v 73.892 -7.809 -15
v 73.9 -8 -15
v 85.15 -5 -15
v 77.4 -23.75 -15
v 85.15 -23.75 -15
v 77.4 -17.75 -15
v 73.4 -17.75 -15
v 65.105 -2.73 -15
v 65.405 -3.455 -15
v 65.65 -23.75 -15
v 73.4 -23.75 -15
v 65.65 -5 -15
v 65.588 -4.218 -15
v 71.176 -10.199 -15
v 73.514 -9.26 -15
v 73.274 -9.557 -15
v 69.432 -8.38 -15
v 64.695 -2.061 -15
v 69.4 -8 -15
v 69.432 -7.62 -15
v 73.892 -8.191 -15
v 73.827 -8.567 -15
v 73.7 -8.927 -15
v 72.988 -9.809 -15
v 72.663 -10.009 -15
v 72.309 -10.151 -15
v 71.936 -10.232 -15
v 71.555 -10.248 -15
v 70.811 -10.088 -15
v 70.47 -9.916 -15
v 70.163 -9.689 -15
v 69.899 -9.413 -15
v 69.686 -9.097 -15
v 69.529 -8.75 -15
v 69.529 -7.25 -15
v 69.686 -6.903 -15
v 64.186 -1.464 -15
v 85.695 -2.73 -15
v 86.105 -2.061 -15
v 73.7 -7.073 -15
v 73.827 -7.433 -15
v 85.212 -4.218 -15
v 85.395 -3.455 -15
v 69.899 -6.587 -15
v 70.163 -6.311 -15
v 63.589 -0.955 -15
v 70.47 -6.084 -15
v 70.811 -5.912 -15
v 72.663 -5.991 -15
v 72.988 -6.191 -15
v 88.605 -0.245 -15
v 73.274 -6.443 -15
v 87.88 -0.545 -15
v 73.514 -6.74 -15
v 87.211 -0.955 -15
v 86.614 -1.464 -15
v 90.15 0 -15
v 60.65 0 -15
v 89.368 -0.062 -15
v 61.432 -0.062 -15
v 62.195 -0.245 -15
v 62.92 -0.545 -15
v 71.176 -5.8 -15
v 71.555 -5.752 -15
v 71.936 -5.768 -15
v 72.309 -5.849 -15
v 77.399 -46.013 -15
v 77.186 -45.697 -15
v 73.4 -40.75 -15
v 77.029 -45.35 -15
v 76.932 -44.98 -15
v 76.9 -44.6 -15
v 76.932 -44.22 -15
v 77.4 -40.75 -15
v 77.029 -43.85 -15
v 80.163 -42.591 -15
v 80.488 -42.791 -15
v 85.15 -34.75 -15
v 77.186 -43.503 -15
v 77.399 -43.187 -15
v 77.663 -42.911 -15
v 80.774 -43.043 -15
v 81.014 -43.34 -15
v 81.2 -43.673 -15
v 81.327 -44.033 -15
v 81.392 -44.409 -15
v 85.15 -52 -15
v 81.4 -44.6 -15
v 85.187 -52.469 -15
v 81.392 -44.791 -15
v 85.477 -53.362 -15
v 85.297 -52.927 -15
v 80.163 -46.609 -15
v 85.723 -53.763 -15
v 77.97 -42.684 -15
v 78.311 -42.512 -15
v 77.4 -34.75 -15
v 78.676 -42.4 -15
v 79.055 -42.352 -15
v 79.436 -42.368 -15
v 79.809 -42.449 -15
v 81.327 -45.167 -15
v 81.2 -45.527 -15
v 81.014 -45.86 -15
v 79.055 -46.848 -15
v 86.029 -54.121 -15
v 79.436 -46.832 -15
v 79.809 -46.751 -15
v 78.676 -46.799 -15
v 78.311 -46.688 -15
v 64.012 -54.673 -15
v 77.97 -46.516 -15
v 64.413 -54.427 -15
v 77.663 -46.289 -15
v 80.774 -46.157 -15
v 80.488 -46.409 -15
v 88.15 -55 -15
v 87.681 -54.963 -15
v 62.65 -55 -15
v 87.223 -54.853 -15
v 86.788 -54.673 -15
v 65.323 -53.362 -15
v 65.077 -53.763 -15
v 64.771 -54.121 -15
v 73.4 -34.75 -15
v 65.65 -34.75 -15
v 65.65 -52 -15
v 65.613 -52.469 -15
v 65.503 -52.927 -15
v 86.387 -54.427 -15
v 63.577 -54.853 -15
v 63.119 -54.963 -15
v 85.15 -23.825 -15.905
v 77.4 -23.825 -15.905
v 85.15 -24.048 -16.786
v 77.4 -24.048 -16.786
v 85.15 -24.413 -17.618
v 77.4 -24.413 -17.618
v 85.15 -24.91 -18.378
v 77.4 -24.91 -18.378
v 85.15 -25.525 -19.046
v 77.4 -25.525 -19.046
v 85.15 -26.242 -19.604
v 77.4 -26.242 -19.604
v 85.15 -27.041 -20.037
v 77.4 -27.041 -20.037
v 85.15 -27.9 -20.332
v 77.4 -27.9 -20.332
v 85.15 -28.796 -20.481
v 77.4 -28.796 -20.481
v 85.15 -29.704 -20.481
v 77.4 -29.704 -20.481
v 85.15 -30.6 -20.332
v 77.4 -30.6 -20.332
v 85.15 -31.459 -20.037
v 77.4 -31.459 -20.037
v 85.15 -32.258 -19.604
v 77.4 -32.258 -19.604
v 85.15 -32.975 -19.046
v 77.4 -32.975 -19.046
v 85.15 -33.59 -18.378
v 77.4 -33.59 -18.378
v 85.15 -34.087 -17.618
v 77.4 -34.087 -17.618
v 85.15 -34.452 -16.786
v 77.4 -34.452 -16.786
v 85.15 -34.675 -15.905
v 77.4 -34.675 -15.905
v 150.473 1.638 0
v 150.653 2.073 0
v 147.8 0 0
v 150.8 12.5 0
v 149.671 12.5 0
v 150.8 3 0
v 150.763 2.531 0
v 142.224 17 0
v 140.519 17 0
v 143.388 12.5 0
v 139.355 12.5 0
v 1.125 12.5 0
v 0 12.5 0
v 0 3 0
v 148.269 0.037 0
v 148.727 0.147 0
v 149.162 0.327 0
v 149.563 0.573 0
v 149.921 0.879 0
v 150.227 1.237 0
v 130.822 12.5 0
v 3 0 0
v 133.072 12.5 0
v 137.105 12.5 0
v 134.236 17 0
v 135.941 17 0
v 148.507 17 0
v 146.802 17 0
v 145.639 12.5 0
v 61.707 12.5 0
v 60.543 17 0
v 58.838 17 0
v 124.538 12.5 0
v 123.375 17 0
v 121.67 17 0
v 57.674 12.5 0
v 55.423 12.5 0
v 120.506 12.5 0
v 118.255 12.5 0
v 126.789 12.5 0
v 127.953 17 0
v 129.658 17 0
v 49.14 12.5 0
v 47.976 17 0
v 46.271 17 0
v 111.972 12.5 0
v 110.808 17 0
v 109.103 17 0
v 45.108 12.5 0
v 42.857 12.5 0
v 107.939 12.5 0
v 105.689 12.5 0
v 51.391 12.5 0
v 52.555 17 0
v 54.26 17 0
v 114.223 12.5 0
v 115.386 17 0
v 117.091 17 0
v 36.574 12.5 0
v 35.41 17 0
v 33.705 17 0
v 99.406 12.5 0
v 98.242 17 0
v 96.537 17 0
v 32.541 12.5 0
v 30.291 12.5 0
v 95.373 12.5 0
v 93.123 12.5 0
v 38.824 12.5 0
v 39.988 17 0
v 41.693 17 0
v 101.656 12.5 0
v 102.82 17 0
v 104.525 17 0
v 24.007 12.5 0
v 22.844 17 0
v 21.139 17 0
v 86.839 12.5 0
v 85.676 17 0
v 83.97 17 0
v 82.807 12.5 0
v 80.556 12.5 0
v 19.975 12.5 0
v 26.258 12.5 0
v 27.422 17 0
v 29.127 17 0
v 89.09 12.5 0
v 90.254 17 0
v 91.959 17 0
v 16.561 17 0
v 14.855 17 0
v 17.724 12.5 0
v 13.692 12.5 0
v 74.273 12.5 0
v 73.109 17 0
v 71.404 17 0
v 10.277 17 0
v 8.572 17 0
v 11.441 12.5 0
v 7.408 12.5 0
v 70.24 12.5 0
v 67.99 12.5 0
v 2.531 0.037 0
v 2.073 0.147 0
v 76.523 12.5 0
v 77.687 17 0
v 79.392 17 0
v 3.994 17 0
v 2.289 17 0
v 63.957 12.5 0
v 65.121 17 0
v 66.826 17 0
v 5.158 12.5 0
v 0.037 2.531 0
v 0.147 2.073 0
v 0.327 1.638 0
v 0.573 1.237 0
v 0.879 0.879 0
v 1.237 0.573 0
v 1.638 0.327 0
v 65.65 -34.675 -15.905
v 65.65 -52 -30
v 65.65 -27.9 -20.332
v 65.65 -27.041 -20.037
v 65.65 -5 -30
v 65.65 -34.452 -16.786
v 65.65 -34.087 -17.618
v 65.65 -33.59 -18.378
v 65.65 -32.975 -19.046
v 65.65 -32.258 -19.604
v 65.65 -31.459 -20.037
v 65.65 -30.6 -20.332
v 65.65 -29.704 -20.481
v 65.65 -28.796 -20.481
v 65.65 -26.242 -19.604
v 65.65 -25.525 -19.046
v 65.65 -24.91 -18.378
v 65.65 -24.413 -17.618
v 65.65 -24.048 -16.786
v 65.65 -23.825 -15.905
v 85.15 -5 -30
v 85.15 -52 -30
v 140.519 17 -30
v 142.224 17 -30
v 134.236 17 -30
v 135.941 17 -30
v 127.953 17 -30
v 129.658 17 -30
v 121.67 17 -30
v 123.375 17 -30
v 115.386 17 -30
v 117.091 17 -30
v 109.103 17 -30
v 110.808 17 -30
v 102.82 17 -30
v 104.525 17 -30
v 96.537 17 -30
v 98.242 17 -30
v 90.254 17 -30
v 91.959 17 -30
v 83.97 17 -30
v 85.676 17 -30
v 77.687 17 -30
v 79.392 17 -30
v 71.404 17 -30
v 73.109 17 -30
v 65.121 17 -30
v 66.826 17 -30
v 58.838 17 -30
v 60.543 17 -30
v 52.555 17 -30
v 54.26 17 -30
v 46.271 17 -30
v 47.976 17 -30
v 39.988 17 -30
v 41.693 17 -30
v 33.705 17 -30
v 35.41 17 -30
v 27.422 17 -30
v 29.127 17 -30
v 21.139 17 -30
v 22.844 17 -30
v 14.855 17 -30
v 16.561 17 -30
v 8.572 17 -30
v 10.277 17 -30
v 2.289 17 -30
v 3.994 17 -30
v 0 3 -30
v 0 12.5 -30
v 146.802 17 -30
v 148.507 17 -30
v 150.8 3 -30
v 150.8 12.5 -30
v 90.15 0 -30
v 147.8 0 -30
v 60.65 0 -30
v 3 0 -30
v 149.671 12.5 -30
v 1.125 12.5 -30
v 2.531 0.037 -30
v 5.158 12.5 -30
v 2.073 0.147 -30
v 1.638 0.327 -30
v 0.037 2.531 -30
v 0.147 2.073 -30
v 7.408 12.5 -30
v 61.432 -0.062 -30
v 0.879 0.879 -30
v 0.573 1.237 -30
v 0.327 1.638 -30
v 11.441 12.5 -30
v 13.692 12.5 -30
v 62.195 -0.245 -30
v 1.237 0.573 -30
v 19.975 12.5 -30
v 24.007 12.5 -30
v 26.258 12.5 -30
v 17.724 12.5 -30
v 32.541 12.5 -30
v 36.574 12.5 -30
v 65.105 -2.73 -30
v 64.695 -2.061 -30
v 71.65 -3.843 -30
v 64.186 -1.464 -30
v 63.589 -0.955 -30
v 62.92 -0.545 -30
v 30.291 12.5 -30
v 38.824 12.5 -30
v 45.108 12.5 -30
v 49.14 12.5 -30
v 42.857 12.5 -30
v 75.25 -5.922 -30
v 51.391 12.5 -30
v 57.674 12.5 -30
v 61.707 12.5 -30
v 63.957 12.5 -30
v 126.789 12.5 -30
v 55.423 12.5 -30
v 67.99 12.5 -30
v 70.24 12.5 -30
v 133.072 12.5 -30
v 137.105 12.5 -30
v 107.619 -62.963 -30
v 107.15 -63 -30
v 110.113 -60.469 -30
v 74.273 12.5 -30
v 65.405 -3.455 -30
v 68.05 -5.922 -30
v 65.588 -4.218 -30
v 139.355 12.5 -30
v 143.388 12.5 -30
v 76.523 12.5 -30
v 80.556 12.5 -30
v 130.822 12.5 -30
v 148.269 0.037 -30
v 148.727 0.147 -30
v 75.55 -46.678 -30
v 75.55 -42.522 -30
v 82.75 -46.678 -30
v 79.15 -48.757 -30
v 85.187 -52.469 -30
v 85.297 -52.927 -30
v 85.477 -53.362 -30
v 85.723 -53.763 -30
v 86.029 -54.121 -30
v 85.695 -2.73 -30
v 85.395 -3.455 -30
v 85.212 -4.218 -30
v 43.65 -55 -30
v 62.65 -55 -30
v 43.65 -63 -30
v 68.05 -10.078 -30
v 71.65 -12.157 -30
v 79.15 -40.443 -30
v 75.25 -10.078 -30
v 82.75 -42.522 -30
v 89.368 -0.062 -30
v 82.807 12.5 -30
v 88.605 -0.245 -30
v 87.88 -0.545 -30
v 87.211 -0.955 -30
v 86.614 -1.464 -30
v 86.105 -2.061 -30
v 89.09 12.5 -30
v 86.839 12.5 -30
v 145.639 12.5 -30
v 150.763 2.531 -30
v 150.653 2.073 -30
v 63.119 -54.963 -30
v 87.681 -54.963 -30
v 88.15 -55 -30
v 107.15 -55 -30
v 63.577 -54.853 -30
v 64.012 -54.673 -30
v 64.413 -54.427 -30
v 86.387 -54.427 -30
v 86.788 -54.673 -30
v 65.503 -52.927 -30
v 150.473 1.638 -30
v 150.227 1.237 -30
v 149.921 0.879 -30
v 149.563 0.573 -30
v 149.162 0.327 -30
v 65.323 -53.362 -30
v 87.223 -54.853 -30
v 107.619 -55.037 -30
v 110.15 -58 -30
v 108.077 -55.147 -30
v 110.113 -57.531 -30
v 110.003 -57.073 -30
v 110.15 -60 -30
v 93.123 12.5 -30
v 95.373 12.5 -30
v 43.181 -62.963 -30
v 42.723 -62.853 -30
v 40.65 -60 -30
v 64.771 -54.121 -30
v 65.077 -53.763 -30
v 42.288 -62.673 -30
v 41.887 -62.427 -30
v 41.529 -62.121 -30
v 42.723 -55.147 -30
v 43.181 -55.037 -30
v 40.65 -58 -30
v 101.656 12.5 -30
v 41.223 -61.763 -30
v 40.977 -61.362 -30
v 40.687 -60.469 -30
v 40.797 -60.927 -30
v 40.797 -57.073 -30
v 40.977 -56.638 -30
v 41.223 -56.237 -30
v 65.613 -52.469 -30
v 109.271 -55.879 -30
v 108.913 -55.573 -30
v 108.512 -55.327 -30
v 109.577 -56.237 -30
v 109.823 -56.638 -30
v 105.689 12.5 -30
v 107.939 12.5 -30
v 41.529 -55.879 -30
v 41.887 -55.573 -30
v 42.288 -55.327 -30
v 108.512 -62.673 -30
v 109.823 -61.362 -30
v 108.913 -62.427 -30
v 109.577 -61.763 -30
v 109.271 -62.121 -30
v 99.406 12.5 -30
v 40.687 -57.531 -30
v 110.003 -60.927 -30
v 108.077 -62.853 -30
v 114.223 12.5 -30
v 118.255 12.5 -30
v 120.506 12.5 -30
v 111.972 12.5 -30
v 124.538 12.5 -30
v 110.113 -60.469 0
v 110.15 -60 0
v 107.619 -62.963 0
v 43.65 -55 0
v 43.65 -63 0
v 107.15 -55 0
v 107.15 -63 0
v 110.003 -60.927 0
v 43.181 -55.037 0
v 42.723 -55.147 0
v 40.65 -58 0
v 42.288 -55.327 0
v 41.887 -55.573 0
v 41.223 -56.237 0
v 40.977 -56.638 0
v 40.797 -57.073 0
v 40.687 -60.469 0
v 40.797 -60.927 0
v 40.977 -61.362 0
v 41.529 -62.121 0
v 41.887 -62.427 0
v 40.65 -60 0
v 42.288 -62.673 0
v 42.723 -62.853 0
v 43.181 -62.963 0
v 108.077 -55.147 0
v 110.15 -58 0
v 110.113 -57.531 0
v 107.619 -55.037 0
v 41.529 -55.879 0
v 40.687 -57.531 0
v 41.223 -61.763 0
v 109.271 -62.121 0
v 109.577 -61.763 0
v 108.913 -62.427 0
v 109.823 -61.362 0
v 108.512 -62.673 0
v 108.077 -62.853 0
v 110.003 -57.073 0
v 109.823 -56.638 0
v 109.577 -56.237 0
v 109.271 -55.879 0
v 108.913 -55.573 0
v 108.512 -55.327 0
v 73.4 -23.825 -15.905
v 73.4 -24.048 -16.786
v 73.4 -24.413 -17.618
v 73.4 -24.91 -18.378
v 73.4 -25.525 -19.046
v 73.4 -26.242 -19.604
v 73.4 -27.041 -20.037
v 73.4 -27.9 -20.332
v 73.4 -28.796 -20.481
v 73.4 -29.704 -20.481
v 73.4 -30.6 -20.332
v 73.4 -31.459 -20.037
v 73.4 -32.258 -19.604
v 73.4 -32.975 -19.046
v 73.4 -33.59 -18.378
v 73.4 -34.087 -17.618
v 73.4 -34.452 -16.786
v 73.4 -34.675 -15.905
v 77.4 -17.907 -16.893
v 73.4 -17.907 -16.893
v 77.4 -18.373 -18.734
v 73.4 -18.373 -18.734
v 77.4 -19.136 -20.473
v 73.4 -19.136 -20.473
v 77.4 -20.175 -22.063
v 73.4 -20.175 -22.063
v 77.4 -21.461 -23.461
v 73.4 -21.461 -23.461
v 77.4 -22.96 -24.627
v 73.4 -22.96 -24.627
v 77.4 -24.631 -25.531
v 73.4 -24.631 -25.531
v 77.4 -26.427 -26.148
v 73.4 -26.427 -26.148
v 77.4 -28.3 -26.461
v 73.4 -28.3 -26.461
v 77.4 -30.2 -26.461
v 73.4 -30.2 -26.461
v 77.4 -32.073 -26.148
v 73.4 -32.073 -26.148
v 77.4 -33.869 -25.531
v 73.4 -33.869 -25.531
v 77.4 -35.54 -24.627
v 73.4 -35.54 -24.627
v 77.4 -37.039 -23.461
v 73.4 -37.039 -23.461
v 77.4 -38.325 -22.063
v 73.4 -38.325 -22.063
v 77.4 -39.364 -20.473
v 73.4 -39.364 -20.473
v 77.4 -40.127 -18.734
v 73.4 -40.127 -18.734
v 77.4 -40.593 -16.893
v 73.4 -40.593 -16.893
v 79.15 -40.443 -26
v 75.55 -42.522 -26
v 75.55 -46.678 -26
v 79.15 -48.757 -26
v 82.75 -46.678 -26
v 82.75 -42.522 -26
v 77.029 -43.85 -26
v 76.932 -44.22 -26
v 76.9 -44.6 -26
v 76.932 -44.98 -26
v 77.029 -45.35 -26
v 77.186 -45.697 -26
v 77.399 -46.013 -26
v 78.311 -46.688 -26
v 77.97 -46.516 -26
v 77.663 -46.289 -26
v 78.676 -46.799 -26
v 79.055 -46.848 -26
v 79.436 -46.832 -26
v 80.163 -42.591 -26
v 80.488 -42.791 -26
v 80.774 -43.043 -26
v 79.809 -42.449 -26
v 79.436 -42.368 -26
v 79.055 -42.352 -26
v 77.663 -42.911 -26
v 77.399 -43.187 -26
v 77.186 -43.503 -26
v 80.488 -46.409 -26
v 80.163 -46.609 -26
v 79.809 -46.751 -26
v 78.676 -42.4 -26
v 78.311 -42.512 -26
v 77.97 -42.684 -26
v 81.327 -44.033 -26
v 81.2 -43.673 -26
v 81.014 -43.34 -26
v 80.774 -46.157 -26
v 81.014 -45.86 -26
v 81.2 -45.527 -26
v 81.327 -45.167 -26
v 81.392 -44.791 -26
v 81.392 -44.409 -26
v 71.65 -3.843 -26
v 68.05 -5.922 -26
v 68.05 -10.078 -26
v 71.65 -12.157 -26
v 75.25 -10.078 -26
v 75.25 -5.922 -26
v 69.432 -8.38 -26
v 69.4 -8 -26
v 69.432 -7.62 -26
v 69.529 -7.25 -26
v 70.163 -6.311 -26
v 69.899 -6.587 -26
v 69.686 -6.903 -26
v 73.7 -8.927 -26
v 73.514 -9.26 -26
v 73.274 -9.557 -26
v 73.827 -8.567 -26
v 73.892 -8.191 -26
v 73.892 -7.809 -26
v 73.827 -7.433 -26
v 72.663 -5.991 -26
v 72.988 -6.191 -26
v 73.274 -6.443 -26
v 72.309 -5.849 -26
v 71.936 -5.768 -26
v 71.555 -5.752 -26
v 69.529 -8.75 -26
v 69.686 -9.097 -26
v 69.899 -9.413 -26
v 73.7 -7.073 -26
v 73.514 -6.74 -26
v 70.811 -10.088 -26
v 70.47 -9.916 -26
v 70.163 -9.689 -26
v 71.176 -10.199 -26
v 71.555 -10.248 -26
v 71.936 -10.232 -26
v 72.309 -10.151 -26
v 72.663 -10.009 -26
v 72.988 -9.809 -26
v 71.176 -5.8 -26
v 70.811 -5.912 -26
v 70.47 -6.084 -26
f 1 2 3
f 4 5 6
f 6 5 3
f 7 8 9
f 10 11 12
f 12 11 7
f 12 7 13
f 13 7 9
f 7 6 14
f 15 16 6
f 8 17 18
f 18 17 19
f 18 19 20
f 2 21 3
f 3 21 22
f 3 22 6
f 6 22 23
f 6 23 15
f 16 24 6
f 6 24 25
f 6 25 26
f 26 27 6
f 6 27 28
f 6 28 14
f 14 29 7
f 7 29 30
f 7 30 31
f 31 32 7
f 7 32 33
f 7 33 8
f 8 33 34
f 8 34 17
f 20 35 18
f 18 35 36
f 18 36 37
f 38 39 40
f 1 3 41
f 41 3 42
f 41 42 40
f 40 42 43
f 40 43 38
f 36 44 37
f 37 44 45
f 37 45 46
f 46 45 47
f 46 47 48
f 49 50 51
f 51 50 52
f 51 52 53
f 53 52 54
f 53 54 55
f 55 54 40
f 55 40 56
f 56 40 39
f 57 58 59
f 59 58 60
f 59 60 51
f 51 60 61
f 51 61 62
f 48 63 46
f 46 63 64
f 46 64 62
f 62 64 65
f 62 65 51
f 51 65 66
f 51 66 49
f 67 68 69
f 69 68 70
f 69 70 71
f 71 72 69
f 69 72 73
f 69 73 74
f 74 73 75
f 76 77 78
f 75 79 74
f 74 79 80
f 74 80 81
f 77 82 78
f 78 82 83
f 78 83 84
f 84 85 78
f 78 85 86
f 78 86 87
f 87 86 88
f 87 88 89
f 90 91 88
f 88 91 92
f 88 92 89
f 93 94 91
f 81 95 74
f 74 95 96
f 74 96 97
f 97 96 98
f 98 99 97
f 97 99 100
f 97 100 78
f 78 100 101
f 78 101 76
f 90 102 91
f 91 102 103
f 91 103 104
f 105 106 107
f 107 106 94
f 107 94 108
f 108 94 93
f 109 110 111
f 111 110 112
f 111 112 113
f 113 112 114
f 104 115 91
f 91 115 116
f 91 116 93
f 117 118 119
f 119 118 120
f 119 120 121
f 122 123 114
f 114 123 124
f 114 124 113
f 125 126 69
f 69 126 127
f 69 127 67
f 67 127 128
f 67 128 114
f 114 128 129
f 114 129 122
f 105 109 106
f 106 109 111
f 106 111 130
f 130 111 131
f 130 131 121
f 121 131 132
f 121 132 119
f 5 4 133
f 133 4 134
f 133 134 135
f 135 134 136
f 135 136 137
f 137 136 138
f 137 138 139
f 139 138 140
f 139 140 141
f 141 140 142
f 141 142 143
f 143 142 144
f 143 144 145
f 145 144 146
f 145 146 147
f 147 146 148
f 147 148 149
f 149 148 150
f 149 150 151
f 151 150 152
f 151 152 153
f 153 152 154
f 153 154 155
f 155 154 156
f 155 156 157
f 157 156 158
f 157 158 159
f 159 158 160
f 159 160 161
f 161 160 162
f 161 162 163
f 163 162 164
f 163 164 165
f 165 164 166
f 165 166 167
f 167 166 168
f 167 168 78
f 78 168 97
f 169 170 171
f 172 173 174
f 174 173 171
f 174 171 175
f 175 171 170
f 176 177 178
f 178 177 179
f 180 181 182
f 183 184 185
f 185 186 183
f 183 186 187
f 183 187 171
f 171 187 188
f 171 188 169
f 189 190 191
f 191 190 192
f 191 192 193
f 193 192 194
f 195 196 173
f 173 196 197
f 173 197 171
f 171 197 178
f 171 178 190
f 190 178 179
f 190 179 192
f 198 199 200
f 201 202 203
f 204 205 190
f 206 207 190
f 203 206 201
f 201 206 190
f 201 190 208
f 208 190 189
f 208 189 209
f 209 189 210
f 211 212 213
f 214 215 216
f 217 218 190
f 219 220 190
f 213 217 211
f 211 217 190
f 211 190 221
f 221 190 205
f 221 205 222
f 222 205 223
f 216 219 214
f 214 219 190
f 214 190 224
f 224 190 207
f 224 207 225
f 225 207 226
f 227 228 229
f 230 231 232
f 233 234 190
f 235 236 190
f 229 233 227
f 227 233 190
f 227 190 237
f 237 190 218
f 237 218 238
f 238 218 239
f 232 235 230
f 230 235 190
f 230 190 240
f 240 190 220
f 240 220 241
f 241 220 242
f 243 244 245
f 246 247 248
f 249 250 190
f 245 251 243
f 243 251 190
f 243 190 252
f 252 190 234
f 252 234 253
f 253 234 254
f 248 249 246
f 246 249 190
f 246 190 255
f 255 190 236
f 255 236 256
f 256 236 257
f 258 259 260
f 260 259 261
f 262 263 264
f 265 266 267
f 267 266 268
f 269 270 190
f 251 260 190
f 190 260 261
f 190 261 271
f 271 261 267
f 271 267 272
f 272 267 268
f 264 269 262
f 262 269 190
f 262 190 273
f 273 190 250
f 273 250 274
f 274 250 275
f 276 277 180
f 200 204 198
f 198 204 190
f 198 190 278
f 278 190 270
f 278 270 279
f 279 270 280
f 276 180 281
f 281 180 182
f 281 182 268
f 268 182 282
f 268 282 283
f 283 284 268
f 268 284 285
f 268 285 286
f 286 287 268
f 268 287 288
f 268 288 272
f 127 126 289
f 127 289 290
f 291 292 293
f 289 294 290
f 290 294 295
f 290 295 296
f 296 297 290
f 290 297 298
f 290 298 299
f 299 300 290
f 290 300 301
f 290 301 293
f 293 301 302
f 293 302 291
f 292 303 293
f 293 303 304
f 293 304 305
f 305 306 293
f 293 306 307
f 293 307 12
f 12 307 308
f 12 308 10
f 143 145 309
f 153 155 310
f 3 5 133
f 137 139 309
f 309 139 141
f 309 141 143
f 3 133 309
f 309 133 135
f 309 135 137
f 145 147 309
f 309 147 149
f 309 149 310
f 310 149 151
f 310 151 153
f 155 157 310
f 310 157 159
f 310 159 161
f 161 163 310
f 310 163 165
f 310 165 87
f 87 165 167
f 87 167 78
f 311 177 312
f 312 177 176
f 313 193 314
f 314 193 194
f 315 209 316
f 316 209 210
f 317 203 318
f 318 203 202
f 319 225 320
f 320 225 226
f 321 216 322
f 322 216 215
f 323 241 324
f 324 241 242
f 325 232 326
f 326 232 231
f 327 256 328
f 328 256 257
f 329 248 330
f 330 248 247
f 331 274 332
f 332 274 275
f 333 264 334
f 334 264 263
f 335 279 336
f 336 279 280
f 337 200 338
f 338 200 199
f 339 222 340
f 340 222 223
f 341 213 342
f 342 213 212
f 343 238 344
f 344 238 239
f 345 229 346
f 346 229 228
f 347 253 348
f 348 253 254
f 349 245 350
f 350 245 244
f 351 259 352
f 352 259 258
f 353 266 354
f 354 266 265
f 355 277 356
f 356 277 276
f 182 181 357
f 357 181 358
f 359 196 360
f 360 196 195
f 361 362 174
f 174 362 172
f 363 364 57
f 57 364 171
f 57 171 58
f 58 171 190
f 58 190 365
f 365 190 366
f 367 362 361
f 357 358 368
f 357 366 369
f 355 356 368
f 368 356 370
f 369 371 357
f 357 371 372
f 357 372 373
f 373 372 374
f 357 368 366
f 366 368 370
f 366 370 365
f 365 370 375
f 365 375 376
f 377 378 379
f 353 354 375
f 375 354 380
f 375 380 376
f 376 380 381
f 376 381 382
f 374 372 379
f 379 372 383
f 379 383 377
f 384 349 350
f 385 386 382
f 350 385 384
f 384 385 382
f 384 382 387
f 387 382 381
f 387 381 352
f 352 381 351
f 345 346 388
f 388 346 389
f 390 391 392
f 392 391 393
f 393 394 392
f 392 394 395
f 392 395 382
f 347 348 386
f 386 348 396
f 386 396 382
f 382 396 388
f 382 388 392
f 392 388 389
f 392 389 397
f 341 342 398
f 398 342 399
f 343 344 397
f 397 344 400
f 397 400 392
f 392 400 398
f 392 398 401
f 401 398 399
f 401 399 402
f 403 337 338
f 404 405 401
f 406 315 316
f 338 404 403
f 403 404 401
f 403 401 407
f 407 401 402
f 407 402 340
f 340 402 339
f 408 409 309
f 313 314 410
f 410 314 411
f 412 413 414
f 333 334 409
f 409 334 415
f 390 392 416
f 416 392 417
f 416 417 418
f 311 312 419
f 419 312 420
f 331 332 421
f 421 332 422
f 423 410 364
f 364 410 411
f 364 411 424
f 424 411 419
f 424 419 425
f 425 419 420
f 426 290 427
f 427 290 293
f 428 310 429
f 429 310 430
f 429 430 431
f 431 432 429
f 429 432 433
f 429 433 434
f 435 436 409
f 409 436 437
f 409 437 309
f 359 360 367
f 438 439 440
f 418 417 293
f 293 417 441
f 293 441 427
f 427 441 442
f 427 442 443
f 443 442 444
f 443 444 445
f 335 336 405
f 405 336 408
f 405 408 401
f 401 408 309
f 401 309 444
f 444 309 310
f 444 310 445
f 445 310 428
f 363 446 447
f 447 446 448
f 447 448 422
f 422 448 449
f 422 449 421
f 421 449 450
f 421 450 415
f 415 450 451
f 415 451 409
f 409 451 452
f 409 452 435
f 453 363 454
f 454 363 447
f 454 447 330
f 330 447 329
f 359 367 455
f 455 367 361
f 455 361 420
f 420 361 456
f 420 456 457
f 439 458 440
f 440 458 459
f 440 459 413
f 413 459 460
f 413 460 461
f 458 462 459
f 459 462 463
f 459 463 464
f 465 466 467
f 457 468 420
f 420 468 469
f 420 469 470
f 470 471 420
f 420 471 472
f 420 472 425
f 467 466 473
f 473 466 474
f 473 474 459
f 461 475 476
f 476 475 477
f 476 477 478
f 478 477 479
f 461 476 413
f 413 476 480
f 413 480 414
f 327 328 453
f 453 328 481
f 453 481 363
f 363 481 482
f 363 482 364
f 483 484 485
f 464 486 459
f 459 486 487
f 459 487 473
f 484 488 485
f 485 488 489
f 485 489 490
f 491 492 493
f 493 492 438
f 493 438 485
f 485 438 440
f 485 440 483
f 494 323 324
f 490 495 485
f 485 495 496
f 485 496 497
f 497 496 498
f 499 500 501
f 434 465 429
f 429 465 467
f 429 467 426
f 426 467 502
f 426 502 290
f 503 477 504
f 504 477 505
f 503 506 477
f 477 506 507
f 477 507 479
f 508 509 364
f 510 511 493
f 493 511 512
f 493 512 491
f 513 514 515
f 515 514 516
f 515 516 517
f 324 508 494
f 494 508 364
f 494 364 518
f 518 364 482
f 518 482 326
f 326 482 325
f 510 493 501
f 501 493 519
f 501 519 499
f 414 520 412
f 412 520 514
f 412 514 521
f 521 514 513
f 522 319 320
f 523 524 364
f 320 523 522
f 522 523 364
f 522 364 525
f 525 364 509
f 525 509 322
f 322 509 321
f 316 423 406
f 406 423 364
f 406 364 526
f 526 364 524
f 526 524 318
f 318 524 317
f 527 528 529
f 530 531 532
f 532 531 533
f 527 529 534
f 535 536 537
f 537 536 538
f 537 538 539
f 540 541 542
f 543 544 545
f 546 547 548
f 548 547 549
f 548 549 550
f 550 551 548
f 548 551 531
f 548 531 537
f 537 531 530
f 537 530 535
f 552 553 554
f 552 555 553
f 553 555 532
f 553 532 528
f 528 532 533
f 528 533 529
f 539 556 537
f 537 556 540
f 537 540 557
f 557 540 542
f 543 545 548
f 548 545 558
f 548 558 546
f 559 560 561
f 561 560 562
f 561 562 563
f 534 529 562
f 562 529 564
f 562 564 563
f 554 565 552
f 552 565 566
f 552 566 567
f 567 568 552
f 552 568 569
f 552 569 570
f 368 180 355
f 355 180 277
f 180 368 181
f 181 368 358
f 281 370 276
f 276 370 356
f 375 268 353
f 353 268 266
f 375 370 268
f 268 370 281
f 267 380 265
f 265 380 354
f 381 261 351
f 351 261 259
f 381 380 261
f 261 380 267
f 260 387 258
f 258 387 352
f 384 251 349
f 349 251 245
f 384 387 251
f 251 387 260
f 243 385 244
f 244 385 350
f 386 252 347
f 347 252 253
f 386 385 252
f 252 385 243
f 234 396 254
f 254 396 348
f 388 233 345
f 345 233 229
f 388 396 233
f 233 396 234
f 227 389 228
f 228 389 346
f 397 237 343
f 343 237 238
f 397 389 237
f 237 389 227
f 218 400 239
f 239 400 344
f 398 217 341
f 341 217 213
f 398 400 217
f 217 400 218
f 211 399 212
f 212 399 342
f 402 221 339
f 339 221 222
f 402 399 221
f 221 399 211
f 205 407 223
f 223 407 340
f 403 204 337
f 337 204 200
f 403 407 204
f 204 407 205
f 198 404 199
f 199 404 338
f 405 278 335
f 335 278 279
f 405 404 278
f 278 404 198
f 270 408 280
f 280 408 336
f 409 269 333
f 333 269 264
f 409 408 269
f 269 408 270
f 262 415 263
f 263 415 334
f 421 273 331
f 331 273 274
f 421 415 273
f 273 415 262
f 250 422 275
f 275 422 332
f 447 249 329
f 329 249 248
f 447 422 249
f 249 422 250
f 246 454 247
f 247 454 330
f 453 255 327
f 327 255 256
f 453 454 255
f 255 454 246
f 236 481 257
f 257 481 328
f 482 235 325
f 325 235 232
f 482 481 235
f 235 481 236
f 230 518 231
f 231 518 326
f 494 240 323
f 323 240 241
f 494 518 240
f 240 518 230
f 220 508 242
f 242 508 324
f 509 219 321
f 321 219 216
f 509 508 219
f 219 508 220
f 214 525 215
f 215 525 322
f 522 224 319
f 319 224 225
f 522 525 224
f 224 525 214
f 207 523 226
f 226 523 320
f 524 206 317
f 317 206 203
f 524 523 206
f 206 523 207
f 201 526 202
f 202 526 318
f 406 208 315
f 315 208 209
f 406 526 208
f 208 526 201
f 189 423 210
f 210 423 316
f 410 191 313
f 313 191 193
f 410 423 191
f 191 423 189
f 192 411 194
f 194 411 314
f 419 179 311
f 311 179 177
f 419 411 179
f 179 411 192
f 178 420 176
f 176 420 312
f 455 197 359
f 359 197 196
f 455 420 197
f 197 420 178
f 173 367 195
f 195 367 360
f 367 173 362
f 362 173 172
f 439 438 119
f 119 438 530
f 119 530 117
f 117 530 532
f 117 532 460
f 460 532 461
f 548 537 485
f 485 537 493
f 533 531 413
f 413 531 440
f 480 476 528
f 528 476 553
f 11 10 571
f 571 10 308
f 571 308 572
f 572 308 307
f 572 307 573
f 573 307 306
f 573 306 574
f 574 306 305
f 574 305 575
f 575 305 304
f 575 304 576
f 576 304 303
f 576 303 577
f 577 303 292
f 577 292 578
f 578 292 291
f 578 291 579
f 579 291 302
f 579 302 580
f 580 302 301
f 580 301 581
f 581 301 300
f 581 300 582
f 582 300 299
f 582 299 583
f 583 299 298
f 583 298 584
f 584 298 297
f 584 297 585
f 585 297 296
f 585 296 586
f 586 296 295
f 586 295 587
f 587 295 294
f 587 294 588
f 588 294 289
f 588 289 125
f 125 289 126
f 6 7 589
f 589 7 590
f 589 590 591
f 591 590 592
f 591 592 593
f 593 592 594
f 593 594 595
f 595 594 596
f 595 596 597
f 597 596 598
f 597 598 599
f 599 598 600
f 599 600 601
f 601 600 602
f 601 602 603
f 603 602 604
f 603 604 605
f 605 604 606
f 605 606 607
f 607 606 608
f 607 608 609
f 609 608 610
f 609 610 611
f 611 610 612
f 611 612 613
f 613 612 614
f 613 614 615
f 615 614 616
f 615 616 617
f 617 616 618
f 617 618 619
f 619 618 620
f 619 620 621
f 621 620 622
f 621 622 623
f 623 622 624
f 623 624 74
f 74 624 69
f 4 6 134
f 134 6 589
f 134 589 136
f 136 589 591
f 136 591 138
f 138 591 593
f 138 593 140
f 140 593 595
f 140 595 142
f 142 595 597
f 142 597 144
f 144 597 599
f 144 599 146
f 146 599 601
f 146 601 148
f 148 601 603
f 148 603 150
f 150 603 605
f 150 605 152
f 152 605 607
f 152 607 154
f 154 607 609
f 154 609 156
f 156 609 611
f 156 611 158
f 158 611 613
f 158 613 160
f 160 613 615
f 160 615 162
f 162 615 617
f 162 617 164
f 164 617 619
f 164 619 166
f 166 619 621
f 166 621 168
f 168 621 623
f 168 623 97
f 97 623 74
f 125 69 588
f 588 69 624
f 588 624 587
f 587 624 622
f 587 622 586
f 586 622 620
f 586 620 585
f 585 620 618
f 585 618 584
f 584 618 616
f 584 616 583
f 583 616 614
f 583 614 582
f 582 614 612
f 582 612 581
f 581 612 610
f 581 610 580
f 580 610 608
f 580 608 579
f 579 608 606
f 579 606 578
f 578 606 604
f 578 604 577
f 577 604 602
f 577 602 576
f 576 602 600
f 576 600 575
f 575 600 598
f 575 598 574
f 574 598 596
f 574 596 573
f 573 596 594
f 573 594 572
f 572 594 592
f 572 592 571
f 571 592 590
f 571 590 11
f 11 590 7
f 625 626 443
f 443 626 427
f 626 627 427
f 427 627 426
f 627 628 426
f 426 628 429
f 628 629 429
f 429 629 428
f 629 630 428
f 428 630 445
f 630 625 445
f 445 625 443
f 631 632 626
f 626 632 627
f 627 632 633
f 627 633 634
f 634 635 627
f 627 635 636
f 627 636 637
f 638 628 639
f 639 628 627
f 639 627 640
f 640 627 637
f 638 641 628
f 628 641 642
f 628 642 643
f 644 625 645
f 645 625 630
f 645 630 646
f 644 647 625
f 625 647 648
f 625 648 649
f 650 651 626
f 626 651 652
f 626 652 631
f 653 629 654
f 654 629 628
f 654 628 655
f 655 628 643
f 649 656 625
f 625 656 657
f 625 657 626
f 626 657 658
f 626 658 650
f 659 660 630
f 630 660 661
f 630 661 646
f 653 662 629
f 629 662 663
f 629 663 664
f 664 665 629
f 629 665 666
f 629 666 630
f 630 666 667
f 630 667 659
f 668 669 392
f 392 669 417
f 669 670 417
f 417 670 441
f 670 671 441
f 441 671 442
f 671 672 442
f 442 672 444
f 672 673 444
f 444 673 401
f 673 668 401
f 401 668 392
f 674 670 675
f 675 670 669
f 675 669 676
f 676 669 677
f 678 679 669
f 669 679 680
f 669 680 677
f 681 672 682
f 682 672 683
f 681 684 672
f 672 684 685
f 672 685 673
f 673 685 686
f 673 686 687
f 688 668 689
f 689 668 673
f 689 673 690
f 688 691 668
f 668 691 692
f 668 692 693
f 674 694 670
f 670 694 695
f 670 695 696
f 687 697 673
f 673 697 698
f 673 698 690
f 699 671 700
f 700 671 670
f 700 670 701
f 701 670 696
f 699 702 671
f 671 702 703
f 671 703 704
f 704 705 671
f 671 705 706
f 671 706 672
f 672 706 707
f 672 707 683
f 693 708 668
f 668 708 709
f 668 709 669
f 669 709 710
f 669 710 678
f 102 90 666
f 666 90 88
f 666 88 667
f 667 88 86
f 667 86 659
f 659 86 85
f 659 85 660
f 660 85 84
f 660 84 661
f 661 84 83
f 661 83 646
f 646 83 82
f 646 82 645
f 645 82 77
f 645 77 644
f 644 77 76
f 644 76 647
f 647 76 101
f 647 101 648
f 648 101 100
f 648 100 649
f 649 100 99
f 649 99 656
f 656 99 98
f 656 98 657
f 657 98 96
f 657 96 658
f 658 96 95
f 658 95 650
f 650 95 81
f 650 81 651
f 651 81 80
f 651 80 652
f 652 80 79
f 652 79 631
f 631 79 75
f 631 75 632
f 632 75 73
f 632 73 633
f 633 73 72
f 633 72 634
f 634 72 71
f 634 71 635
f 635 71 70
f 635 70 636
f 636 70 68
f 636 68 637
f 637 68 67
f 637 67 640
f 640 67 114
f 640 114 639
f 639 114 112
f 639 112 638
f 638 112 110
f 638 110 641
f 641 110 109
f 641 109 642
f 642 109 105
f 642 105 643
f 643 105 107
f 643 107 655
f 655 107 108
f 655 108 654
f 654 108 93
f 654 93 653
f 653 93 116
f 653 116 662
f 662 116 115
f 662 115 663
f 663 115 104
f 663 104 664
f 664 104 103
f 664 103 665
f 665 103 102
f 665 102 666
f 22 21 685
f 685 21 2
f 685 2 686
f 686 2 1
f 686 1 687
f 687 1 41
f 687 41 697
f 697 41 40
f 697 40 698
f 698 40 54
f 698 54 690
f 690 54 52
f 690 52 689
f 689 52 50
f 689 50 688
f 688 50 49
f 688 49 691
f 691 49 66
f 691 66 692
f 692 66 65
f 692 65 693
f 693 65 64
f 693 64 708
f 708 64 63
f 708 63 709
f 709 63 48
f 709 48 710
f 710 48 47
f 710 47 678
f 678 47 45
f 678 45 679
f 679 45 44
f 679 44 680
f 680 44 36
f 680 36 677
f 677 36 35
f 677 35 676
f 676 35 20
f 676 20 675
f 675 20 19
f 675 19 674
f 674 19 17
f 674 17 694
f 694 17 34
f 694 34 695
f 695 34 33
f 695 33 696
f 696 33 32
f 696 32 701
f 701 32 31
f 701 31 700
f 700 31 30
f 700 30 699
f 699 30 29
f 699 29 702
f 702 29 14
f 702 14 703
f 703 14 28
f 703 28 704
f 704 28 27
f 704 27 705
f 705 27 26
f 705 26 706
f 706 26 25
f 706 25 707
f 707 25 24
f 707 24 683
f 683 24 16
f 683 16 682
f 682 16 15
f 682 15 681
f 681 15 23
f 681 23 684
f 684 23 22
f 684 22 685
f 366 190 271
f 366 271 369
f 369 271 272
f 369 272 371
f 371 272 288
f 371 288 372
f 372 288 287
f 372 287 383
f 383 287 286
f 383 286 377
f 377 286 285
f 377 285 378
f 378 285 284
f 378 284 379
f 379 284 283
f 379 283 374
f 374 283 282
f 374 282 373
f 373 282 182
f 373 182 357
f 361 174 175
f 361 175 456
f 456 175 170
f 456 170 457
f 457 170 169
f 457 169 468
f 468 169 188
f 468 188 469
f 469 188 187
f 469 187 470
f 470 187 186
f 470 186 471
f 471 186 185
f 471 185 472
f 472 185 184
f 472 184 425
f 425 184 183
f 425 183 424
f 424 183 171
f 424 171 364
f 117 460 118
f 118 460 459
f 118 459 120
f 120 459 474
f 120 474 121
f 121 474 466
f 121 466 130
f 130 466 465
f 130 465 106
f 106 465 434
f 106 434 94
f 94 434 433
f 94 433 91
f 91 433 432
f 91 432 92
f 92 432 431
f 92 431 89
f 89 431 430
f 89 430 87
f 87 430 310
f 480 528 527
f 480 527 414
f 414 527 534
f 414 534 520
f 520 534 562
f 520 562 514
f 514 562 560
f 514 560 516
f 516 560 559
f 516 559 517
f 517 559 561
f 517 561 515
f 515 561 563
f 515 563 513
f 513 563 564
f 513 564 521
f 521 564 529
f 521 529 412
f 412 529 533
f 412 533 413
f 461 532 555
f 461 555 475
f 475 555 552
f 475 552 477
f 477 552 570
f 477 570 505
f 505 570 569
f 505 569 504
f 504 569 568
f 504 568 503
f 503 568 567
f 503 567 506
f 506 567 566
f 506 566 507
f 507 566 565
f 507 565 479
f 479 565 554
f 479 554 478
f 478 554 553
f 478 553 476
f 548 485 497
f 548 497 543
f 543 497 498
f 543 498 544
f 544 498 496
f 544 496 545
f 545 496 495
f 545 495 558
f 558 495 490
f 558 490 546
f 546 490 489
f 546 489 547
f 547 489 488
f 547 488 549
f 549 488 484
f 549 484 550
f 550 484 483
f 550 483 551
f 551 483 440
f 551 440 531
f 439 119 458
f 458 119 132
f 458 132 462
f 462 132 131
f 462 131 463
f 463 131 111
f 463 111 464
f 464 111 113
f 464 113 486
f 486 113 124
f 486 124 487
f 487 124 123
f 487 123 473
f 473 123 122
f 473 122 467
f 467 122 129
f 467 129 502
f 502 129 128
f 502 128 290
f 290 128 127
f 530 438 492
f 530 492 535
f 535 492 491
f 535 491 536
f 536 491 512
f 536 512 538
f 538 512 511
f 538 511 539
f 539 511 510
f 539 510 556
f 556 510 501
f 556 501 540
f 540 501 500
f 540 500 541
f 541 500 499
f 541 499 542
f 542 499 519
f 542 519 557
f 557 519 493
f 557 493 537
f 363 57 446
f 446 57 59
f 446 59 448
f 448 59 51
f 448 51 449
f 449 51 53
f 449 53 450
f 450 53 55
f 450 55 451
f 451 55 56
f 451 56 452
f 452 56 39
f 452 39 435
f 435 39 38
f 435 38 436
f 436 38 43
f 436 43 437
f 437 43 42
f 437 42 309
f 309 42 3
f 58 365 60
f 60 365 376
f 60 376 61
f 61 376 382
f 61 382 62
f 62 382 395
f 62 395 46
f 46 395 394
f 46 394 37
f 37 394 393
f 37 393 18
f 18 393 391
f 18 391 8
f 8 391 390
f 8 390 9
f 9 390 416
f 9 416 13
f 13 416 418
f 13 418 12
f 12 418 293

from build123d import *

# Parameters (mm, degrees)
BLANKSKE_W                            = 150.8
BLANKSKE_H                            = 17
BLANK_CREMALHEIRA_DEPTH               = 30
CORTE_DENTE_DIMENSIONADO_DEPTH        = 155.692081245
CORTE_DESTES_COUNT                    = 25
CORTE_DESTES_PITCH                    = 6.2831853
SKETCH1_W                             = 9.75
SKETCH1_H                             = 55
CORPO_DE_APOIO_DEPTH                  = 30
SKETCH2_W                             = 19.5
SKETCH2_H                             = 55
REBAIXO_DEPTH                         = 15
ENCAIXE_FLANGE_11_PASSANTE_DEPTH      = 103.733441488
ENCAIXE_FLANGE_11_PASSANTE_DEPTH_BACK = 103.733441488
SKETCH3_R                             = 5.5
SKETCH3_3_R                           = 11.5
SKETCH3_3_R_2                         = 5.5
ENCAIXE_FLANGE_23X4_DEPTH             = 2
REBAIXOS_DAS_PORCAS_DEPTH             = 4
SKETCH5_R                             = 1.85
FUROS_DE_FIXA_O_DEPTH                 = 166.486071921
RAIOS_3MM_R                           = 3
RAIOS_5MM_R                           = 5


with BuildPart() as part:
    # BlankSke → Blank Cremalheira (new body)
    with BuildSketch(Plane.XY):
        with Locations((75.4, 8.5)):
            Rectangle(BLANKSKE_W, BLANKSKE_H)
    extrude(amount=-BLANK_CREMALHEIRA_DEPTH)

    # TooCutSkeSim → Corte - Dente Dimensionado (cut, through all)
    with BuildSketch(Plane.XY):
        Polygon((1.125252364, 12.5), (-1.125252364, 12.5), (-2.29560038, 17.0254), (2.29560038, 17.0254), align=None)
    corte_dente_dimensionado = extrude(amount=-CORTE_DENTE_DIMENSIONADO_DEPTH, mode=Mode.SUBTRACT)

    # Corte - Destes: Corte - Dente Dimensionado ×25
    with Locations(*[(i * CORTE_DESTES_PITCH, 0, 0) for i in range(1, CORTE_DESTES_COUNT)]):
        add(corte_dente_dimensionado, mode=Mode.SUBTRACT)

    # Sketch1 → Corpo de Apoio (add)
    with BuildSketch(Plane(origin=(0, 0, -30), x_dir=(-1, 0, 0), z_dir=(0, 0, -1))):
        with Locations((-70.525, -27.5)):
            Rectangle(SKETCH1_W, SKETCH1_H)
        with Locations((-80.275, -27.5)):
            Rectangle(SKETCH1_W, SKETCH1_H)
        Polygon((-65.65, -55), (-75.4, -55), (-75.4, -63), (-40.65, -63), (-40.65, -55), align=None)
        Polygon((-75.4, -63), (-75.4, -55), (-85.15, -55), (-110.15, -55), (-110.15, -63), align=None)
    extrude(amount=-CORPO_DE_APOIO_DEPTH)

    # Sketch2 → Rebaixo (cut)
    with BuildSketch(Plane.XY):
        with Locations((75.4, -27.5)):
            Rectangle(SKETCH2_W, SKETCH2_H)
    extrude(amount=-REBAIXO_DEPTH, mode=Mode.SUBTRACT)

    # Sketch3 → Encaixe Flange - Ø11 Passante (cut, two sides: drawn at the far end of the back side and taken through both)
    with BuildSketch(Plane.ZY.offset(-75.4).offset(-ENCAIXE_FLANGE_11_PASSANTE_DEPTH_BACK)):
        with Locations((-15, -29.25)):
            Circle(SKETCH3_R)
    extrude(amount=ENCAIXE_FLANGE_11_PASSANTE_DEPTH + ENCAIXE_FLANGE_11_PASSANTE_DEPTH_BACK, mode=Mode.SUBTRACT)

    # Sketch3<3> → Encaixe Flange - Ø23x4 (cut, symmetric)
    with BuildSketch(Plane.ZY.offset(-75.4)):
        with Locations((-15, -29.25)):
            Circle(SKETCH3_3_R)
        with Locations((-15, -29.25)):
            Circle(SKETCH3_3_R_2, mode=Mode.SUBTRACT)
    extrude(amount=ENCAIXE_FLANGE_23X4_DEPTH, both=True, mode=Mode.SUBTRACT)

    # Sketch4 → Rebaixos das Porcas (cut)
    with BuildSketch(Plane(origin=(0, 0, -30), x_dir=(-1, 0, 0), z_dir=(0, 0, -1))):
        Polygon((-71.65, -3.843078062), (-75.25, -5.921539031), (-75.25, -10.078460969), (-71.65, -12.156921938), (-68.05, -10.078460969), (-68.05, -5.921539031), align=None)
        Polygon((-79.15, -40.443072948), (-82.75, -42.521533917), (-82.75, -46.678455855), (-79.15, -48.756916824), (-75.55, -46.678455855), (-75.55, -42.521533917), align=None)
    extrude(amount=-REBAIXOS_DAS_PORCAS_DEPTH, mode=Mode.SUBTRACT)

    # Sketch5 → Furos de Fixação (cut, through all)
    with BuildSketch(Plane(origin=(0, 0, -26), x_dir=(-1, 0, 0), z_dir=(0, 0, -1))):
        with Locations((-79.15, -44.599994886)):
            Circle(SKETCH5_R)
        with Locations((-71.65, -8)):
            Circle(SKETCH5_R)
    extrude(amount=-FUROS_DE_FIXA_O_DEPTH, mode=Mode.SUBTRACT)

    # Raios 3mm
    raios_3mm_edges = [part.edges().sort_by_distance(p)[0] for p in [
        (40.65, -55, -15),
        (40.65, -63, -15),
        (110.15, -63, -15),
        (110.15, -55, -15),
        (85.15, -55, -22.5),
        (65.65, -55, -22.5),
        (150.8, 0, -15),
        (0, 0, -15),
    ]]
    fillet(raios_3mm_edges, radius=RAIOS_3MM_R)

    # Raios 5mm
    raios_5mm_edges = [part.edges().sort_by_distance(p)[0] for p in [
        (85.15, 0, -22.5),
        (65.65, 0, -22.5),
    ]]
    fillet(raios_5mm_edges, radius=RAIOS_5MM_R)


solid = part.part
